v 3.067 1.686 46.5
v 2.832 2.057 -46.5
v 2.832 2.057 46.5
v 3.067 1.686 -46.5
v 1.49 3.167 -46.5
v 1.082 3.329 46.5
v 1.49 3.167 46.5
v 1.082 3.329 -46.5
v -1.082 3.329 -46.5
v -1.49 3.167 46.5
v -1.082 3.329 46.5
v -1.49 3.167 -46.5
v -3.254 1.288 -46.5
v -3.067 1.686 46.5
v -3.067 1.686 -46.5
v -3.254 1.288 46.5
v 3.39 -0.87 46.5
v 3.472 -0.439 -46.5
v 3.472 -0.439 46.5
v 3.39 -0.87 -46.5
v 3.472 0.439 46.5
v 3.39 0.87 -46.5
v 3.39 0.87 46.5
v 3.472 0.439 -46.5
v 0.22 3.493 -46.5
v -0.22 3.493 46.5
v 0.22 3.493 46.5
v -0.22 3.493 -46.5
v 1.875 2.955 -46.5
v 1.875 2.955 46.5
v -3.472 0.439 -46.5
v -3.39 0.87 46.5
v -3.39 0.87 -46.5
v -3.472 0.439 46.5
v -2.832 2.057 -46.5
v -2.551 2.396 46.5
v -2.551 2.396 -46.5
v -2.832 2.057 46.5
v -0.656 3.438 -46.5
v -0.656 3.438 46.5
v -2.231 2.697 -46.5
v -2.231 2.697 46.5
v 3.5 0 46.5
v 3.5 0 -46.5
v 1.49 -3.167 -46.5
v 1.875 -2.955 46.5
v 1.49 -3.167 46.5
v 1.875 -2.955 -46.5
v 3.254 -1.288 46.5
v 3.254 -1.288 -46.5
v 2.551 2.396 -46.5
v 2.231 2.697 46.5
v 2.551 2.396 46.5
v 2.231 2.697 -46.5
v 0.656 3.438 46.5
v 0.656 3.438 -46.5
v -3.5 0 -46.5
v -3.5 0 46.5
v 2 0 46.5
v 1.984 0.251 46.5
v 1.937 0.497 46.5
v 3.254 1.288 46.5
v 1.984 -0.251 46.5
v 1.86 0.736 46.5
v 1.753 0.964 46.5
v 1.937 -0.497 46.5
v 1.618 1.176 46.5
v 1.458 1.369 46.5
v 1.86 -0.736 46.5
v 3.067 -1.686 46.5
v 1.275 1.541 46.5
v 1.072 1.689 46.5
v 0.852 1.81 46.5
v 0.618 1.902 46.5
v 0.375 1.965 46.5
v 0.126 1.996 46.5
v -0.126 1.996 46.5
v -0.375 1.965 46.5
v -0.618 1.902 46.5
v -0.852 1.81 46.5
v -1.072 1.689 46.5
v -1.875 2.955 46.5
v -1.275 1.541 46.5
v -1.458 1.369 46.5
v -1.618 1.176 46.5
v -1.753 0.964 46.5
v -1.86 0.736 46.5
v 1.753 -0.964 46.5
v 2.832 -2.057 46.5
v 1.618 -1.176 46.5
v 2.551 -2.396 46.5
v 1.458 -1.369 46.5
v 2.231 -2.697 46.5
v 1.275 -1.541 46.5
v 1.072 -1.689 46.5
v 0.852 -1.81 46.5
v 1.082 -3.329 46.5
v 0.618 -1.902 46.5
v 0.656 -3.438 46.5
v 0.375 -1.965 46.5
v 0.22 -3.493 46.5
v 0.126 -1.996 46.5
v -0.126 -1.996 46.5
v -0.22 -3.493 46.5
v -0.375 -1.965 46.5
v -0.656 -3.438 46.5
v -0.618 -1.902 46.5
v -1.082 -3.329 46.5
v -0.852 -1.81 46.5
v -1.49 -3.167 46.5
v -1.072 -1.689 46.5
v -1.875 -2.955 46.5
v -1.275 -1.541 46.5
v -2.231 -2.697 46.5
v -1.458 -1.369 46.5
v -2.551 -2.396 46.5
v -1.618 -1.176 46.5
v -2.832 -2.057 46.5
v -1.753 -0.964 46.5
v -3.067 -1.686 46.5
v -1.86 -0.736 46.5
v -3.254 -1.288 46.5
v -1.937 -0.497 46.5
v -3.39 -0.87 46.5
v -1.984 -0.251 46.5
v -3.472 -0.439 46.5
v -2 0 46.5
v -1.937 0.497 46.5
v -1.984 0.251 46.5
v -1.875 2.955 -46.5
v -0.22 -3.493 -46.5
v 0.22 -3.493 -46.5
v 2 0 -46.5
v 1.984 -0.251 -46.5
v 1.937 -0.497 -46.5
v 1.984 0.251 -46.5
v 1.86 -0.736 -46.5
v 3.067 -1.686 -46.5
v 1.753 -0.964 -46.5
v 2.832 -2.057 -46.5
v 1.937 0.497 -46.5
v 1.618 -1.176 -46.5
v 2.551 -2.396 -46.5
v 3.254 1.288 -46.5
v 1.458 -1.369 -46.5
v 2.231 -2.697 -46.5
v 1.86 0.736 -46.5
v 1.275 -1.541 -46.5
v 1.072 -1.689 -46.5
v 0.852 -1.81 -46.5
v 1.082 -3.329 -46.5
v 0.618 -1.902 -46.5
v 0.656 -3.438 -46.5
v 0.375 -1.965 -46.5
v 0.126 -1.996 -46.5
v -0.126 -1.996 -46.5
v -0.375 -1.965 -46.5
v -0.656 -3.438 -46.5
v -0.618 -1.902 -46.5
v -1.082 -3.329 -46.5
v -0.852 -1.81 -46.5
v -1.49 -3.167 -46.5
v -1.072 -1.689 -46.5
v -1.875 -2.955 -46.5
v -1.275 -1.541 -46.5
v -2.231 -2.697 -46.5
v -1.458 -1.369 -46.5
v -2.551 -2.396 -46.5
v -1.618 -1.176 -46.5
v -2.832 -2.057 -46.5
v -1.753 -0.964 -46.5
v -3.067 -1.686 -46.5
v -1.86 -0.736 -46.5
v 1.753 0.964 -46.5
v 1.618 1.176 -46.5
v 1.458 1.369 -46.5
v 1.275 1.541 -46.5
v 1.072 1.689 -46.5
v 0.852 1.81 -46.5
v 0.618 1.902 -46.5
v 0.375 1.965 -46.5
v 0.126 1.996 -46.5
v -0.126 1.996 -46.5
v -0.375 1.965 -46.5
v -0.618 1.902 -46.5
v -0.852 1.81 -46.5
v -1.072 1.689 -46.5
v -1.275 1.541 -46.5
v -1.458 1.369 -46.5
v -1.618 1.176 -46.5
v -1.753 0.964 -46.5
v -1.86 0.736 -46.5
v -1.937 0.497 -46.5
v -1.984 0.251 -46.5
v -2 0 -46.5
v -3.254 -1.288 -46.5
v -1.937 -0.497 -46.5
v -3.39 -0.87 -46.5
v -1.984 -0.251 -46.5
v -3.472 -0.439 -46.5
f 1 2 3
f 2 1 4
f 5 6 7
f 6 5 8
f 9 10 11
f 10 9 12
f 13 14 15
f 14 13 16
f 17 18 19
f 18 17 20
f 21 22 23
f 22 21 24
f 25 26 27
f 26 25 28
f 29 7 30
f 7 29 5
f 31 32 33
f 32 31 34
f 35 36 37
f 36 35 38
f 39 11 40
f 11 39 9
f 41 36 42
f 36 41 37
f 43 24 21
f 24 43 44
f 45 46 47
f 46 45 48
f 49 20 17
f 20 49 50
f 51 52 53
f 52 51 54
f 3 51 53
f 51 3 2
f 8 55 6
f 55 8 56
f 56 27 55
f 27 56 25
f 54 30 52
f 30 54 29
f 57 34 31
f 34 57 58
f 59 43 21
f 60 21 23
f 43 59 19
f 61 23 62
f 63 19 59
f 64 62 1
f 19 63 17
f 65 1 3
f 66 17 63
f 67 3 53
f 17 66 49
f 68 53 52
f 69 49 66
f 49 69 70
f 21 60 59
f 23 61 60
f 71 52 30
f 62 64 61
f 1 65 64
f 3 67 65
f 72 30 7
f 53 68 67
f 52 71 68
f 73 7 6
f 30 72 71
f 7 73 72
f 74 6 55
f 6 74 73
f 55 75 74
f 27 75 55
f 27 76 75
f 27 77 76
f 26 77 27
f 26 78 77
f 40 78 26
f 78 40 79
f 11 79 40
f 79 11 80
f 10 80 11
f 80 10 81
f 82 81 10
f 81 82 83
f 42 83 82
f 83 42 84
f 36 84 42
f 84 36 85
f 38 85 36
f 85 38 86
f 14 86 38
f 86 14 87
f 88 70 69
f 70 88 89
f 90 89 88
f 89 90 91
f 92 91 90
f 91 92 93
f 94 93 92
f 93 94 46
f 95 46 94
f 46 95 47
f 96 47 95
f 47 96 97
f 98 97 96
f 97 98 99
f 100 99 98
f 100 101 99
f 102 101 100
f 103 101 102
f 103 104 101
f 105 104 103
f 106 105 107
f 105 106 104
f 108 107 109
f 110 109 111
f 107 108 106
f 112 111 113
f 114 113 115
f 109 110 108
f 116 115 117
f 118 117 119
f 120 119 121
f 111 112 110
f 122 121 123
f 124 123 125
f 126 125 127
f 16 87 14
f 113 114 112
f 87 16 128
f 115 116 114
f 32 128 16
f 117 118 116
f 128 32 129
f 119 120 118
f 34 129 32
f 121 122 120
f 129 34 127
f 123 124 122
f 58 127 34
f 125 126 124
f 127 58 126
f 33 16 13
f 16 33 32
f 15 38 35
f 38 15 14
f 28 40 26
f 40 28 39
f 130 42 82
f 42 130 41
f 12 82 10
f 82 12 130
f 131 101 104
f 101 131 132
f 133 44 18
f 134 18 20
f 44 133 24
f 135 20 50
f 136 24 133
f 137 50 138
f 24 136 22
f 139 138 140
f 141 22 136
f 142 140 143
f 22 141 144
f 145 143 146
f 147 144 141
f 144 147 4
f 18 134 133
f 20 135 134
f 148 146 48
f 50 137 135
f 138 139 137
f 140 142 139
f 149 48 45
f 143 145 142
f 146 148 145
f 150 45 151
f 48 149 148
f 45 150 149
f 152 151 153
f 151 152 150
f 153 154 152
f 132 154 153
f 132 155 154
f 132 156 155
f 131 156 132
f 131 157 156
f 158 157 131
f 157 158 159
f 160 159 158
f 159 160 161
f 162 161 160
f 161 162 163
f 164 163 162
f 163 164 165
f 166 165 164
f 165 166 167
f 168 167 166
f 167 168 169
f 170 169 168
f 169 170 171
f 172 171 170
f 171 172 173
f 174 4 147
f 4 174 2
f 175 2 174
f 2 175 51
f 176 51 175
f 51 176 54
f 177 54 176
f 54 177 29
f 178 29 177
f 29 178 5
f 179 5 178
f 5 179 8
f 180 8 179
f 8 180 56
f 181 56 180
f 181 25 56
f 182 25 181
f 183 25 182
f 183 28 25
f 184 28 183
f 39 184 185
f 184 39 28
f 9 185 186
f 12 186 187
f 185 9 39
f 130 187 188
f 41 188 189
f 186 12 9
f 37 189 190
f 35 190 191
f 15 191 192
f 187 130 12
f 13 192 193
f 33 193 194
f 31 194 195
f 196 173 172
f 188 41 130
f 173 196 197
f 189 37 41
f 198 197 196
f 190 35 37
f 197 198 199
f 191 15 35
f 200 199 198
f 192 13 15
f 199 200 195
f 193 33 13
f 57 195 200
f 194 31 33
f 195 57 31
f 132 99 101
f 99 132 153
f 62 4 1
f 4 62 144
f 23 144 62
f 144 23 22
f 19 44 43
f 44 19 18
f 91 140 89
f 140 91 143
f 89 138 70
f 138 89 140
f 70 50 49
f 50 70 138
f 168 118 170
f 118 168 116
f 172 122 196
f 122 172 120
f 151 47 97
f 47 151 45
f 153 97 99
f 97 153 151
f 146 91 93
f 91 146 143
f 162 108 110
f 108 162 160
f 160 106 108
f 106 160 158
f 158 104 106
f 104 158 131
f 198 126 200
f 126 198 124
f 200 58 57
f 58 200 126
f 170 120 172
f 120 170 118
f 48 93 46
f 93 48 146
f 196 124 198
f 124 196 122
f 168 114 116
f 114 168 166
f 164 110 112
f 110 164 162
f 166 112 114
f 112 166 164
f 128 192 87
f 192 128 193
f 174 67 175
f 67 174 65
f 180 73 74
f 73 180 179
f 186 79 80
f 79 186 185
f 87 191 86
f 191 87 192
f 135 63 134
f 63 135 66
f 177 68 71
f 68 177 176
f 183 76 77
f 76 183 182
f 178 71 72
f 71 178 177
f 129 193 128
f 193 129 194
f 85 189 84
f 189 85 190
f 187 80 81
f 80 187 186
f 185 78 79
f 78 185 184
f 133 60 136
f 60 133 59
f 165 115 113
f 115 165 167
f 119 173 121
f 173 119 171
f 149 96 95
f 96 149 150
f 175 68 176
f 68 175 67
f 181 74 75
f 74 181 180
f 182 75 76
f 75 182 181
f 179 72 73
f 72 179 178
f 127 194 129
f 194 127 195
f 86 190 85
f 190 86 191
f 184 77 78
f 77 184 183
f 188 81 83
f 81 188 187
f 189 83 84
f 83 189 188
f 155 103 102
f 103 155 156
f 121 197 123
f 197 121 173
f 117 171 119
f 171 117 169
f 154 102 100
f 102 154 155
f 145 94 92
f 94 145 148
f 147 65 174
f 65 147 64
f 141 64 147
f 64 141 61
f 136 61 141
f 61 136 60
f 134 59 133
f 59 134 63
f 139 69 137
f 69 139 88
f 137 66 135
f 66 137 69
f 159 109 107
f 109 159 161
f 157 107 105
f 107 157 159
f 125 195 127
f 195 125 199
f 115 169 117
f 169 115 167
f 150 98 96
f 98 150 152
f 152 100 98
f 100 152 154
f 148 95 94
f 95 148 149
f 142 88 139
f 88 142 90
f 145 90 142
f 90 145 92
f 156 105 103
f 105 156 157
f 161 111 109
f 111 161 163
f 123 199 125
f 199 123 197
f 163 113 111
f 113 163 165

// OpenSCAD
$fn = 50;


difference() {
	union() {
		translate(v = [0, 0, -46.5000000000]) {
			cylinder(h = 93, r = 3.5000000000);
		}
	}
	union() {
		translate(v = [0, 0, -100.0000000000]) {
			cylinder(h = 200, r = 2);
		}
	}
}
